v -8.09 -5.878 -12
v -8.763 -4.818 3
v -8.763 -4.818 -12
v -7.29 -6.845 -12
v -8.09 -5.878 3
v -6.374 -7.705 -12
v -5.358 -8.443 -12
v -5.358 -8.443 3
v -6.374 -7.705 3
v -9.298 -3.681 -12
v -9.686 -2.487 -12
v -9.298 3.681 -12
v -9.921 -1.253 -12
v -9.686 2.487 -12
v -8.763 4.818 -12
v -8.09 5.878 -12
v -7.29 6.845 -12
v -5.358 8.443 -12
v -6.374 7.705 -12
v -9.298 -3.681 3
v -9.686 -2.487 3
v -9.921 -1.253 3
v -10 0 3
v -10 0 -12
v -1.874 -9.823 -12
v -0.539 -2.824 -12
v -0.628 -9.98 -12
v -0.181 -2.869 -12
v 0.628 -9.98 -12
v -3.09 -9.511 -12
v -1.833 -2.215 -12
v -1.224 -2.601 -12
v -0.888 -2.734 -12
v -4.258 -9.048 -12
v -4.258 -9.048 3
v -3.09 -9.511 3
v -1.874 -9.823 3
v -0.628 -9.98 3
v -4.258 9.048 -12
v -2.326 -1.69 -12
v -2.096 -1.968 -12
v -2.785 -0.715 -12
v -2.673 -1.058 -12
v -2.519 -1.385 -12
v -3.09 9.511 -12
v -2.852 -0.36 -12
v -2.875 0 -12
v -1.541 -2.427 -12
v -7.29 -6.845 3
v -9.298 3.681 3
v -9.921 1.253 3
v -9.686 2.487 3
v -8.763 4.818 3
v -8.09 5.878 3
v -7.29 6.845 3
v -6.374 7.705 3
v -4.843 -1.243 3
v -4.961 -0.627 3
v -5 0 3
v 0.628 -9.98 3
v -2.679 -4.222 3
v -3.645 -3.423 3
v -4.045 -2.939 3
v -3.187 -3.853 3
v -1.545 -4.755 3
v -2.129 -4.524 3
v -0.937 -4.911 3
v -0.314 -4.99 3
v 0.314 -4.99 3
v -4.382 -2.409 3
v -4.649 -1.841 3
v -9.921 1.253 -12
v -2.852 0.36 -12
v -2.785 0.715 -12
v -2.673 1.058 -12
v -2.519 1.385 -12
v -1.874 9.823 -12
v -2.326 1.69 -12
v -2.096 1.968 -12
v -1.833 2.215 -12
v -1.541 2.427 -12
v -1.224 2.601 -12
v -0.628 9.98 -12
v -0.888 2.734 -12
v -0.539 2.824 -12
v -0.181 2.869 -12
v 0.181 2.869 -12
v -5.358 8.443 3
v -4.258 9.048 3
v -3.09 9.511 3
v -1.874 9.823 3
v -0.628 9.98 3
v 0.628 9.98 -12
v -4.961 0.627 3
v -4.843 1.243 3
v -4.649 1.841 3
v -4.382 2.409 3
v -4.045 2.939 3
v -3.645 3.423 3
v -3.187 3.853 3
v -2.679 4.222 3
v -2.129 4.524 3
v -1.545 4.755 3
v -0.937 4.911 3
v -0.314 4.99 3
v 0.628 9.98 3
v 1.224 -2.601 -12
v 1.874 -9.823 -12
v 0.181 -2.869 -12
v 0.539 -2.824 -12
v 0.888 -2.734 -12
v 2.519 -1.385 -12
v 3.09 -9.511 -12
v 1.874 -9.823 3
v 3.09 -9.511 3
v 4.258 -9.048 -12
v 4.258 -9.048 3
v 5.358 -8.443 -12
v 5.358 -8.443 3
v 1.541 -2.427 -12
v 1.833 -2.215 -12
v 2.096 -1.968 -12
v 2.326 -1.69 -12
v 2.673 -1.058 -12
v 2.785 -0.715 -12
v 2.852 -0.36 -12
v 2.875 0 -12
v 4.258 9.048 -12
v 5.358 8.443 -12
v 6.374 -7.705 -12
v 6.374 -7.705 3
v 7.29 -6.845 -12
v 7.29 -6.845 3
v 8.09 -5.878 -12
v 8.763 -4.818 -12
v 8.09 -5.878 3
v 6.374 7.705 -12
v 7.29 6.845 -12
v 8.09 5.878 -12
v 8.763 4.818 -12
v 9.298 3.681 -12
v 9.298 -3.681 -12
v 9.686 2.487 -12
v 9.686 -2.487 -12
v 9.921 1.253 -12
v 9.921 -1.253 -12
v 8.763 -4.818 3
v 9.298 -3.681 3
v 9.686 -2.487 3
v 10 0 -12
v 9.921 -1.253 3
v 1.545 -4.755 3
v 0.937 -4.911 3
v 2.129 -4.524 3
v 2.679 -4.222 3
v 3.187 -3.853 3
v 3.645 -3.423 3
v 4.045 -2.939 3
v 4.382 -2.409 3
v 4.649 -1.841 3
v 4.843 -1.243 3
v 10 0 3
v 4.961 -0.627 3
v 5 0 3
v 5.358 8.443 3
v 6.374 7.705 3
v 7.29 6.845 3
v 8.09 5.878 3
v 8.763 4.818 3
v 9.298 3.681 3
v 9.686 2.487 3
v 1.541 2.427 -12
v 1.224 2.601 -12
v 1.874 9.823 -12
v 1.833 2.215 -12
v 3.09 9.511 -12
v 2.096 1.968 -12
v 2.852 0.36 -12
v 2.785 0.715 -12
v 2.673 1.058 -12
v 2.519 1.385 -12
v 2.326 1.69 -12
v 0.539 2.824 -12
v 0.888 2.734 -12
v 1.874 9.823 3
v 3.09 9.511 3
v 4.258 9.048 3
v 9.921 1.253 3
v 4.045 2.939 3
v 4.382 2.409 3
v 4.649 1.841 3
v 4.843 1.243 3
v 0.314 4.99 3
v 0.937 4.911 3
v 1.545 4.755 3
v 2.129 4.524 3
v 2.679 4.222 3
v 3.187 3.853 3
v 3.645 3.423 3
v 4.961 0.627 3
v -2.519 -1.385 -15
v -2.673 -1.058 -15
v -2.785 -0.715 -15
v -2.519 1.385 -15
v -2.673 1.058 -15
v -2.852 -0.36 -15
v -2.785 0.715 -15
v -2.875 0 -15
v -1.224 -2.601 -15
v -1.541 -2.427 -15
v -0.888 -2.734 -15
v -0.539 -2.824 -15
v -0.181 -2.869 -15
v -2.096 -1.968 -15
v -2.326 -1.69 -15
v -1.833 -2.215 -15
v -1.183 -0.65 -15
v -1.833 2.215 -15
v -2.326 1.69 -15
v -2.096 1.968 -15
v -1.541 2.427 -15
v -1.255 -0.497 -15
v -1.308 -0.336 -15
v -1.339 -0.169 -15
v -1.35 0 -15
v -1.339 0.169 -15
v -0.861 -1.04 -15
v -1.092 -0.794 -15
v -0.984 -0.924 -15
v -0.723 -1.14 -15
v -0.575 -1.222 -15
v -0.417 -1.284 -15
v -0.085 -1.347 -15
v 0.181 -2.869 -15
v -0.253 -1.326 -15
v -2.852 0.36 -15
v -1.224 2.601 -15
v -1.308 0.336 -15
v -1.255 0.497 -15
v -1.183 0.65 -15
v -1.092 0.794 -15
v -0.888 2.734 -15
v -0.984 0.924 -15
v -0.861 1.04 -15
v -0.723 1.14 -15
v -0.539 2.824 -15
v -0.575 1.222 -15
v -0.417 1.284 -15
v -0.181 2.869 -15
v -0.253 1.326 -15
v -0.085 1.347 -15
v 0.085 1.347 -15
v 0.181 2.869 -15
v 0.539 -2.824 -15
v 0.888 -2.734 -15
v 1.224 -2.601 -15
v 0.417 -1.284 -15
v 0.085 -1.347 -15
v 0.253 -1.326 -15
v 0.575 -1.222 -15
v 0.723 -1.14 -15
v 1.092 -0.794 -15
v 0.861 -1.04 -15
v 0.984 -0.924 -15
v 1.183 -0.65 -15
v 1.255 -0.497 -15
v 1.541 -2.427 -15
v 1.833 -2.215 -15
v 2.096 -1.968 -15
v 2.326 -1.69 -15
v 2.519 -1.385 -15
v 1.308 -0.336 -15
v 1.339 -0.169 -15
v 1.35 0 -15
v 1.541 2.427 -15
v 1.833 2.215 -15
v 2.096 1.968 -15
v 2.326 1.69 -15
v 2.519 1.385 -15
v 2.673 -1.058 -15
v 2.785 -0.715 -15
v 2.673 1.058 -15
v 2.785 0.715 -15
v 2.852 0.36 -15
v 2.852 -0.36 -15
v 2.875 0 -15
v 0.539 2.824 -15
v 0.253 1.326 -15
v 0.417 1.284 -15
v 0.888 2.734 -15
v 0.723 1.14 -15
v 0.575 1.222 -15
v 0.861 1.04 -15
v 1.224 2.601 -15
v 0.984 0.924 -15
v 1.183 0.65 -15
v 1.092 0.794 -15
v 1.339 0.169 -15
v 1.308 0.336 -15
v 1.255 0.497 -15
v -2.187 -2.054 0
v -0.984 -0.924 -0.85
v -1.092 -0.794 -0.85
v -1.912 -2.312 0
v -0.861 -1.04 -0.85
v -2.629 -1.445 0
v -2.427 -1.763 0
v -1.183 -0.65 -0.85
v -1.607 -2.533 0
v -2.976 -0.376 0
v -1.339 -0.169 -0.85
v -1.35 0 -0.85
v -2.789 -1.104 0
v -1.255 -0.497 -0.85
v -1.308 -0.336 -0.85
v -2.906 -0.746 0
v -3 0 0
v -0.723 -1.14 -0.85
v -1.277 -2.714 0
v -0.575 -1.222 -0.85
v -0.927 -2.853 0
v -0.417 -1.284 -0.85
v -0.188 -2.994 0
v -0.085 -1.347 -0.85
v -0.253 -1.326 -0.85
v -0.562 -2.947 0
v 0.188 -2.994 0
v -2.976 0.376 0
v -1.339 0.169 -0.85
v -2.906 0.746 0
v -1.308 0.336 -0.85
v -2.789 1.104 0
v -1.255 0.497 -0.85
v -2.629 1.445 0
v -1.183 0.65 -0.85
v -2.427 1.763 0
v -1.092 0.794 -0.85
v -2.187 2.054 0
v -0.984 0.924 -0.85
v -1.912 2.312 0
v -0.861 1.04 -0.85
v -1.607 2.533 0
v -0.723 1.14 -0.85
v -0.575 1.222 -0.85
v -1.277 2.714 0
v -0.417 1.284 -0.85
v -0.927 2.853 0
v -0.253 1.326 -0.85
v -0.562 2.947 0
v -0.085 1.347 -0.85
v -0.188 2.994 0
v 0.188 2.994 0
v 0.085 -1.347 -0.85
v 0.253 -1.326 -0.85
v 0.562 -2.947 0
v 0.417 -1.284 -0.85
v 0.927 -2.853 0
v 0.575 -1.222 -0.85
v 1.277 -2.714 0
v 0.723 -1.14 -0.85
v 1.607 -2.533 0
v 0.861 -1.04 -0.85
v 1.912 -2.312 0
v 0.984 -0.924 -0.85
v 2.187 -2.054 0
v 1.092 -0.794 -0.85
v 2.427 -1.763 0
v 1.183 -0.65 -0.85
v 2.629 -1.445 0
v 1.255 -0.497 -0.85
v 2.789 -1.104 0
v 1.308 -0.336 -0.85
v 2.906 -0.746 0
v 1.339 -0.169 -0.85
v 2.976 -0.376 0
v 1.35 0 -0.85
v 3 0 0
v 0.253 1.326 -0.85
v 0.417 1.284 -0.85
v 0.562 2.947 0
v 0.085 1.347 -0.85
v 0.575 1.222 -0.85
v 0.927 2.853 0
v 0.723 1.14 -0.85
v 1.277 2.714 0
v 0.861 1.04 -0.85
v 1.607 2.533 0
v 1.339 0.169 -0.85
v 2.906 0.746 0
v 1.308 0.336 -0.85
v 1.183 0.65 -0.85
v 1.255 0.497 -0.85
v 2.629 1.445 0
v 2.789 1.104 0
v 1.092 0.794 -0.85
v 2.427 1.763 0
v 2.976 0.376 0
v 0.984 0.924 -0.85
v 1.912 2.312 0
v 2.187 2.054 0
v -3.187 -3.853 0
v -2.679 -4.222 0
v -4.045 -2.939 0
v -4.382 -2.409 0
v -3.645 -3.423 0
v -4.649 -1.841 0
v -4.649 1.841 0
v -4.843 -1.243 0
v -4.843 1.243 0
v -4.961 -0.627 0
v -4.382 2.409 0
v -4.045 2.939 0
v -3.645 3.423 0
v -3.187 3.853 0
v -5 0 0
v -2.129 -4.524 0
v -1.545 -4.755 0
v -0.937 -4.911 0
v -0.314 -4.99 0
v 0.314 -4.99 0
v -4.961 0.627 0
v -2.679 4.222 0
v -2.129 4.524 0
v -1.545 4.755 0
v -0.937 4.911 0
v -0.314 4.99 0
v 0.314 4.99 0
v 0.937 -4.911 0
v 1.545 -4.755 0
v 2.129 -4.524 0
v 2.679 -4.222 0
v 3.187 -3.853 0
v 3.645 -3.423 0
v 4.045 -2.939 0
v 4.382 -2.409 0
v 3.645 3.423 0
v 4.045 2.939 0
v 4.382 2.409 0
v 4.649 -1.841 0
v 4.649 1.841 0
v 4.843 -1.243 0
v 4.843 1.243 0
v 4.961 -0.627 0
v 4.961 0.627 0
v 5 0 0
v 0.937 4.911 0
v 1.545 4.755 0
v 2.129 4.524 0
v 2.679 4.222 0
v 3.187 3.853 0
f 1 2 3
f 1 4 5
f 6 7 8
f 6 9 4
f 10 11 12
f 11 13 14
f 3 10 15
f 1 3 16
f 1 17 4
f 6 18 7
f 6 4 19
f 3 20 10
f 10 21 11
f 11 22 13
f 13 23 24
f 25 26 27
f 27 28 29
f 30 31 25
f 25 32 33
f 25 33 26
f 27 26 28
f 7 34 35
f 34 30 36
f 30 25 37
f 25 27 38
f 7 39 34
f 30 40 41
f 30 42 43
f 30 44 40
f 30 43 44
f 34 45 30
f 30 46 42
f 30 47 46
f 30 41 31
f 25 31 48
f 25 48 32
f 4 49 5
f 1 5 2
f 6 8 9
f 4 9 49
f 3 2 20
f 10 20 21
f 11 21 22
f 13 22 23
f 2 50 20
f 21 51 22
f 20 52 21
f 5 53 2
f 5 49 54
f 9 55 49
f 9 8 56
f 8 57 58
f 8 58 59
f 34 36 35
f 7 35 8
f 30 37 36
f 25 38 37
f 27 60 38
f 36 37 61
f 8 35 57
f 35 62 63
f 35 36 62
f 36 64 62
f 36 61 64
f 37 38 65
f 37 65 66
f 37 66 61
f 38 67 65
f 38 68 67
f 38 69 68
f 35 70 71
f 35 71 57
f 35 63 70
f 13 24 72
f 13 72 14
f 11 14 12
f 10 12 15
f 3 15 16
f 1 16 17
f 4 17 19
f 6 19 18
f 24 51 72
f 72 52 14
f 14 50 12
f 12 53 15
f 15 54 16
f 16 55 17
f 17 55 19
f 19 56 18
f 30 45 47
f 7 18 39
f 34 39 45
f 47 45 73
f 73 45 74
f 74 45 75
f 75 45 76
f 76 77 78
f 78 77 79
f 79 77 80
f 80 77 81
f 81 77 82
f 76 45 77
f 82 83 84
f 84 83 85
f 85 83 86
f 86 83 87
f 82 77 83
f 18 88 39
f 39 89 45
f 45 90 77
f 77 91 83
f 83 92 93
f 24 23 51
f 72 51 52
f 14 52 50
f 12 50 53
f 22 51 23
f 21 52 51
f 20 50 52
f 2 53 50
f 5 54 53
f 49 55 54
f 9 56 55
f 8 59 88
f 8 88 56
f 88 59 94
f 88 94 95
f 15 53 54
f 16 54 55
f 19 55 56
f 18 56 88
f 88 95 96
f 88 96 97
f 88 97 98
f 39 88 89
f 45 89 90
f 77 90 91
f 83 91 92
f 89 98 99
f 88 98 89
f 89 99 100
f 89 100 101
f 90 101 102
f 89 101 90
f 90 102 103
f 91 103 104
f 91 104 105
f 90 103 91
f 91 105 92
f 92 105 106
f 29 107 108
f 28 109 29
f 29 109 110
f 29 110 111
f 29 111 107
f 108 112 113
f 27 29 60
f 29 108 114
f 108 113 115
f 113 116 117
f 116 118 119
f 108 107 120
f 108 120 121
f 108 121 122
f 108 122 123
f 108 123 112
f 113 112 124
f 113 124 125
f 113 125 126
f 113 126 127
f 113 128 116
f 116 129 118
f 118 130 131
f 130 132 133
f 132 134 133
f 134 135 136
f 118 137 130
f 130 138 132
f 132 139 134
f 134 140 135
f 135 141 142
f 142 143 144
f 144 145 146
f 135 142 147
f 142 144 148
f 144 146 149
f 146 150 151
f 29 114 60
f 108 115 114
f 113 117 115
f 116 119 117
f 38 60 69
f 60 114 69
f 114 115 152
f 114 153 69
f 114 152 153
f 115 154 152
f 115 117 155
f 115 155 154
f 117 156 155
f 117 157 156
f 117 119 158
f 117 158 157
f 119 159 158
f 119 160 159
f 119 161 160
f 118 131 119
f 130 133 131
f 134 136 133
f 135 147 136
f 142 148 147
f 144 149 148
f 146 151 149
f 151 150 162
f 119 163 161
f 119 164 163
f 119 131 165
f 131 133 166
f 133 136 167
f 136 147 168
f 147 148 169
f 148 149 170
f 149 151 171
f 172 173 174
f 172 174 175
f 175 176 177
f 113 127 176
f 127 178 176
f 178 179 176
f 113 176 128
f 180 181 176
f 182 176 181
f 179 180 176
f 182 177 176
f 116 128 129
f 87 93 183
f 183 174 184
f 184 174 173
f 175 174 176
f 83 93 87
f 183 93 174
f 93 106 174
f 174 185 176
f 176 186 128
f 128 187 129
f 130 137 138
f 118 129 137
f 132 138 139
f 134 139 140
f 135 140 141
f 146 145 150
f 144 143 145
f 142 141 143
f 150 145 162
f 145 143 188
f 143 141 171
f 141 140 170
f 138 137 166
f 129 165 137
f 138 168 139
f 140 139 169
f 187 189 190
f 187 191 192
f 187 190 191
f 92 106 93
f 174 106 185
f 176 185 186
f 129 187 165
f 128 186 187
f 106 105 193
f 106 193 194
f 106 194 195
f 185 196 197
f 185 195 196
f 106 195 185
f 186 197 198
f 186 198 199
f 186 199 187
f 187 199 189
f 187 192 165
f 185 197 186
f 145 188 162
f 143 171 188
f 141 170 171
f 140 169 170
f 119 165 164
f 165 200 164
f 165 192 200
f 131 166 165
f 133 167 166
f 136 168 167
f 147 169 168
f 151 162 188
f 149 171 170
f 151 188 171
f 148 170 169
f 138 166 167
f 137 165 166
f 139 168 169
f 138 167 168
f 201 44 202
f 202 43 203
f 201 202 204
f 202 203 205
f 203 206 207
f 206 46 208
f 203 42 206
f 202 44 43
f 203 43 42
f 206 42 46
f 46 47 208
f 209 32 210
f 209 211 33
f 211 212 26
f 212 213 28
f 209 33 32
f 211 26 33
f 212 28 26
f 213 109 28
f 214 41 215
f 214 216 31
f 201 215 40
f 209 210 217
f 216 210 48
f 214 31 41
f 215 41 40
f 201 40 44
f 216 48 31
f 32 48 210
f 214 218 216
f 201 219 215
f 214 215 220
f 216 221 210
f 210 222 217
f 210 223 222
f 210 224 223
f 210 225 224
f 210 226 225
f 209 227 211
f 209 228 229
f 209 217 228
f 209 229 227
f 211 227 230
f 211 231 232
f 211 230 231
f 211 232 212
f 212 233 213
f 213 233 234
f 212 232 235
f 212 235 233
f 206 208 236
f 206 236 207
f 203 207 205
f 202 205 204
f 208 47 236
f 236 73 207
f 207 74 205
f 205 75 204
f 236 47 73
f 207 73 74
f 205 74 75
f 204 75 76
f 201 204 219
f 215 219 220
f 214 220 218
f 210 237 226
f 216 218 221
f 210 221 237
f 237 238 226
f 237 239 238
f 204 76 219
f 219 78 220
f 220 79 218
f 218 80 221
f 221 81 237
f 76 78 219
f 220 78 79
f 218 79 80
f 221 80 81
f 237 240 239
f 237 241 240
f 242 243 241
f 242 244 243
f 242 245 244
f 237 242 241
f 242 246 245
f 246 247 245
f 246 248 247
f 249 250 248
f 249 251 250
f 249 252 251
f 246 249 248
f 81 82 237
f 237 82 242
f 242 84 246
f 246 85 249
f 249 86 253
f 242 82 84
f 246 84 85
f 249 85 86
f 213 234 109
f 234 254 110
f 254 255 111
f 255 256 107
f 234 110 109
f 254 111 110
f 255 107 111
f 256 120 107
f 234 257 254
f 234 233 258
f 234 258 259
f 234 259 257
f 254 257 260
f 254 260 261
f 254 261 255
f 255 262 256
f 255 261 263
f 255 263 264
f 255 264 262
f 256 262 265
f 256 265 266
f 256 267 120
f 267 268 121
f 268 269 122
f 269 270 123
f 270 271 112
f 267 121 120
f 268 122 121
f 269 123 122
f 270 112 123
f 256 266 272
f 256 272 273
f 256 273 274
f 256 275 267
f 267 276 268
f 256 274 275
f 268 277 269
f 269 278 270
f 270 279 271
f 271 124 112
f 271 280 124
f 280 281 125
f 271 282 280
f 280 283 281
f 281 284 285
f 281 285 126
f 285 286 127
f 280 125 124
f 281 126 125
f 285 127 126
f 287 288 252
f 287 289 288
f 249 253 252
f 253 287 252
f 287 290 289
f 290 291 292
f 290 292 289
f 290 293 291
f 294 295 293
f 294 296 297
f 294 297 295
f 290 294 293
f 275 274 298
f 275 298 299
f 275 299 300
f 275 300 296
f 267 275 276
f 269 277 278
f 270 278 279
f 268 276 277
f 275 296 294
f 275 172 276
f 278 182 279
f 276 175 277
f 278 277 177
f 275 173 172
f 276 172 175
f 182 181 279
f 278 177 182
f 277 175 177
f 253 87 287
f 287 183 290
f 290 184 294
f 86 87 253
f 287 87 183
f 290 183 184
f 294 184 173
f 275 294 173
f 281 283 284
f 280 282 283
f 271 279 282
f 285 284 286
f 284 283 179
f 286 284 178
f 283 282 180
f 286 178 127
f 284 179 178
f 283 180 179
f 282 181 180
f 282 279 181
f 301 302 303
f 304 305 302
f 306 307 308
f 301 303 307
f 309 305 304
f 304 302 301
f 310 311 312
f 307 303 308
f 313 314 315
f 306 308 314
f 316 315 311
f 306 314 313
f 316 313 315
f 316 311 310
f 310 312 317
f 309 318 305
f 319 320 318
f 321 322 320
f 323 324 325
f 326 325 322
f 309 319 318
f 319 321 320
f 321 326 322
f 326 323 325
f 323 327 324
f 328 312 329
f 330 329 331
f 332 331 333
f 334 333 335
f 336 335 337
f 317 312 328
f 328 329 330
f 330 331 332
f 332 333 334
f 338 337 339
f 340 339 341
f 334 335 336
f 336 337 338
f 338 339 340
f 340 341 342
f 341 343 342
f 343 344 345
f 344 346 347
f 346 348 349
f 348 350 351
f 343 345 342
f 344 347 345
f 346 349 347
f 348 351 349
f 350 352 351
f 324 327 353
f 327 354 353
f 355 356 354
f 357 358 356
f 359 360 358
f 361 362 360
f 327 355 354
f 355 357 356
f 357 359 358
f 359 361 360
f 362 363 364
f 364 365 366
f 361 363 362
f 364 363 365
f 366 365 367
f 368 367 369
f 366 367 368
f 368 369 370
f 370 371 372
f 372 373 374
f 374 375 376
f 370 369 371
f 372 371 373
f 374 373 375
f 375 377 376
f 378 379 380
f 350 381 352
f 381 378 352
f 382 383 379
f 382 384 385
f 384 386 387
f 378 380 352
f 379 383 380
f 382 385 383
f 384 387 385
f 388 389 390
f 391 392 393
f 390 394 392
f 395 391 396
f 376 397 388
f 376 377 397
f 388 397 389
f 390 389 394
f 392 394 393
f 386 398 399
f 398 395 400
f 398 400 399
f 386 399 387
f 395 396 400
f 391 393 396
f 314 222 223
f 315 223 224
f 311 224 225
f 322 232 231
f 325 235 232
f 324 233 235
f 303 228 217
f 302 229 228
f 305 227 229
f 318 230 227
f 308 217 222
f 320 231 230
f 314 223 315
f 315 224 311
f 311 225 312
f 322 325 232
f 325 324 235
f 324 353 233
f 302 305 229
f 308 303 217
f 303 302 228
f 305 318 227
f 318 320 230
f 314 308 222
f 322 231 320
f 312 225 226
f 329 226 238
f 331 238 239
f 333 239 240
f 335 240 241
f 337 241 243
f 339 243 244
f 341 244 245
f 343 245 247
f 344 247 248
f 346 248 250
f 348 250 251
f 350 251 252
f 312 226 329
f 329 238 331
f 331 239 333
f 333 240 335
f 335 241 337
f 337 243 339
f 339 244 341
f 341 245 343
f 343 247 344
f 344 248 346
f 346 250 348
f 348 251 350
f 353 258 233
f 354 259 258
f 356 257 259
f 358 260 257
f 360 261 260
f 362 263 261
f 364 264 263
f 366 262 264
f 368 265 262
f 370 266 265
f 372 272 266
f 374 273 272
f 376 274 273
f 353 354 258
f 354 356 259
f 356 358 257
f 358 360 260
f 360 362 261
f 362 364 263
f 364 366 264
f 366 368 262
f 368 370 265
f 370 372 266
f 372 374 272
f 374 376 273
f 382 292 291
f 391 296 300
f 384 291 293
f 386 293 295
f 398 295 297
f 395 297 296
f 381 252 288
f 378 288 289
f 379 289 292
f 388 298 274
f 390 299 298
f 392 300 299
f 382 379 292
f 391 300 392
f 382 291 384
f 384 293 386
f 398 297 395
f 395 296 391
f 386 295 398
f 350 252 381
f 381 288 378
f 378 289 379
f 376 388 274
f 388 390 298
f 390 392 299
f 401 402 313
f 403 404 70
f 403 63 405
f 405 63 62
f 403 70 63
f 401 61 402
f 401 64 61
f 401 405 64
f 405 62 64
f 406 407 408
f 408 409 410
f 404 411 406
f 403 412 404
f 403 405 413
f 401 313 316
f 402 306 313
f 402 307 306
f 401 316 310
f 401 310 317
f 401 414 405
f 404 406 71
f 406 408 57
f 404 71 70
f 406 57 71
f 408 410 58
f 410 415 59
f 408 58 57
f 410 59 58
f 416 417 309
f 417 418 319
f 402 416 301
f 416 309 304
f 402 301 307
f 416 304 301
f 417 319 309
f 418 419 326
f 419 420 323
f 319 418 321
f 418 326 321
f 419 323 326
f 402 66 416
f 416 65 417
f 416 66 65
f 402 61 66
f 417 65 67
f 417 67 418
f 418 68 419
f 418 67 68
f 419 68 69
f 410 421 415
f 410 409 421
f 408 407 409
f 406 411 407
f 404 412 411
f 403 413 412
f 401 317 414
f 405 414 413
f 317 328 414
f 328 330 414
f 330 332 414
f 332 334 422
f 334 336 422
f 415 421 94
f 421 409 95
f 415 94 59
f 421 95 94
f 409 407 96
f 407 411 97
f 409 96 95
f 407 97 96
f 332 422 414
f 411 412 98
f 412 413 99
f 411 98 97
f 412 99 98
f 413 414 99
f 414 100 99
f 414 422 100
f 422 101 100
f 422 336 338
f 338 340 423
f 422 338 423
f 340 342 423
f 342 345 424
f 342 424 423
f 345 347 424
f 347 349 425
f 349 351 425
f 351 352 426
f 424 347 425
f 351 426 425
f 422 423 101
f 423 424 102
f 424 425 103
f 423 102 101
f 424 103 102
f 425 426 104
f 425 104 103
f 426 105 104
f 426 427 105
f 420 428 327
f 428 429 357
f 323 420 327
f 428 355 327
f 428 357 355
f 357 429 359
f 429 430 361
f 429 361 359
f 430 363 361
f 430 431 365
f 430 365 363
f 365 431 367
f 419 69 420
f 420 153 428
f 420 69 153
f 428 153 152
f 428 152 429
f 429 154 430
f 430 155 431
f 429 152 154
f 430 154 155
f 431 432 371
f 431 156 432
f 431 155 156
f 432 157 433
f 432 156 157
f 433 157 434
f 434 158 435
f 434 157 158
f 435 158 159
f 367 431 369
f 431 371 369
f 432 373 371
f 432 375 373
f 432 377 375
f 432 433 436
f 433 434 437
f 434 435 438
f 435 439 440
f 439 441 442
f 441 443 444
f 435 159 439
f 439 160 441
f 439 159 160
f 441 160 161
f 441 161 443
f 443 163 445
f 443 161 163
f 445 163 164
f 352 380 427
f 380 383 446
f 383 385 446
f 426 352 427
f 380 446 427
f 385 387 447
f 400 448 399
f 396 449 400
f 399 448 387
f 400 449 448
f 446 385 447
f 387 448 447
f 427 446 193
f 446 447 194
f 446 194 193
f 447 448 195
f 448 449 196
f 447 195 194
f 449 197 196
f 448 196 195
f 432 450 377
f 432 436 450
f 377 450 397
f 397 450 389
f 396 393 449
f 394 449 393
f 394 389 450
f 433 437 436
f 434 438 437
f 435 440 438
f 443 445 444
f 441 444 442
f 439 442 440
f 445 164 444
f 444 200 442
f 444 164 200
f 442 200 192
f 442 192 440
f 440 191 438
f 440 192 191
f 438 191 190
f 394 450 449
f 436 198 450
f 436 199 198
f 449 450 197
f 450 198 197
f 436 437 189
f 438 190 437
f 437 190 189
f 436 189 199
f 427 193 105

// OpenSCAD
$fn = 50;

difference() {
	union() {
		translate(v = [0, 0, -12.0]) {
			cylinder(h = 15, r = 10.0);
		}
		#translate(v = [0, 0, -15.0]) {
			cylinder(h = 15, r = 2.875);
		}
	}
	union() {
		translate(v = [0, 0, 0]) {
			rotate(a = [0, 0, 0]) {
				difference() {
					union() {
						translate(v = [0, 0, -15.0]) {
							cylinder(h = 15, r = 1.0);
						}
						translate(v = [0, 0, -0.85]) {
							cylinder(h = 0.85, r1 = 1.35, r2 = 3.0);
						}
						translate(v = [0, 0, -15.0]) {
							cylinder(h = 15, r = 1.35);
						}
						translate(v = [0, 0, -15.0]) {
							cylinder(h = 15, r = 1.0);
						}
					}
					union();
				}
			}
		}
		#cylinder(h = 3, r = 5.0);
	}
}
